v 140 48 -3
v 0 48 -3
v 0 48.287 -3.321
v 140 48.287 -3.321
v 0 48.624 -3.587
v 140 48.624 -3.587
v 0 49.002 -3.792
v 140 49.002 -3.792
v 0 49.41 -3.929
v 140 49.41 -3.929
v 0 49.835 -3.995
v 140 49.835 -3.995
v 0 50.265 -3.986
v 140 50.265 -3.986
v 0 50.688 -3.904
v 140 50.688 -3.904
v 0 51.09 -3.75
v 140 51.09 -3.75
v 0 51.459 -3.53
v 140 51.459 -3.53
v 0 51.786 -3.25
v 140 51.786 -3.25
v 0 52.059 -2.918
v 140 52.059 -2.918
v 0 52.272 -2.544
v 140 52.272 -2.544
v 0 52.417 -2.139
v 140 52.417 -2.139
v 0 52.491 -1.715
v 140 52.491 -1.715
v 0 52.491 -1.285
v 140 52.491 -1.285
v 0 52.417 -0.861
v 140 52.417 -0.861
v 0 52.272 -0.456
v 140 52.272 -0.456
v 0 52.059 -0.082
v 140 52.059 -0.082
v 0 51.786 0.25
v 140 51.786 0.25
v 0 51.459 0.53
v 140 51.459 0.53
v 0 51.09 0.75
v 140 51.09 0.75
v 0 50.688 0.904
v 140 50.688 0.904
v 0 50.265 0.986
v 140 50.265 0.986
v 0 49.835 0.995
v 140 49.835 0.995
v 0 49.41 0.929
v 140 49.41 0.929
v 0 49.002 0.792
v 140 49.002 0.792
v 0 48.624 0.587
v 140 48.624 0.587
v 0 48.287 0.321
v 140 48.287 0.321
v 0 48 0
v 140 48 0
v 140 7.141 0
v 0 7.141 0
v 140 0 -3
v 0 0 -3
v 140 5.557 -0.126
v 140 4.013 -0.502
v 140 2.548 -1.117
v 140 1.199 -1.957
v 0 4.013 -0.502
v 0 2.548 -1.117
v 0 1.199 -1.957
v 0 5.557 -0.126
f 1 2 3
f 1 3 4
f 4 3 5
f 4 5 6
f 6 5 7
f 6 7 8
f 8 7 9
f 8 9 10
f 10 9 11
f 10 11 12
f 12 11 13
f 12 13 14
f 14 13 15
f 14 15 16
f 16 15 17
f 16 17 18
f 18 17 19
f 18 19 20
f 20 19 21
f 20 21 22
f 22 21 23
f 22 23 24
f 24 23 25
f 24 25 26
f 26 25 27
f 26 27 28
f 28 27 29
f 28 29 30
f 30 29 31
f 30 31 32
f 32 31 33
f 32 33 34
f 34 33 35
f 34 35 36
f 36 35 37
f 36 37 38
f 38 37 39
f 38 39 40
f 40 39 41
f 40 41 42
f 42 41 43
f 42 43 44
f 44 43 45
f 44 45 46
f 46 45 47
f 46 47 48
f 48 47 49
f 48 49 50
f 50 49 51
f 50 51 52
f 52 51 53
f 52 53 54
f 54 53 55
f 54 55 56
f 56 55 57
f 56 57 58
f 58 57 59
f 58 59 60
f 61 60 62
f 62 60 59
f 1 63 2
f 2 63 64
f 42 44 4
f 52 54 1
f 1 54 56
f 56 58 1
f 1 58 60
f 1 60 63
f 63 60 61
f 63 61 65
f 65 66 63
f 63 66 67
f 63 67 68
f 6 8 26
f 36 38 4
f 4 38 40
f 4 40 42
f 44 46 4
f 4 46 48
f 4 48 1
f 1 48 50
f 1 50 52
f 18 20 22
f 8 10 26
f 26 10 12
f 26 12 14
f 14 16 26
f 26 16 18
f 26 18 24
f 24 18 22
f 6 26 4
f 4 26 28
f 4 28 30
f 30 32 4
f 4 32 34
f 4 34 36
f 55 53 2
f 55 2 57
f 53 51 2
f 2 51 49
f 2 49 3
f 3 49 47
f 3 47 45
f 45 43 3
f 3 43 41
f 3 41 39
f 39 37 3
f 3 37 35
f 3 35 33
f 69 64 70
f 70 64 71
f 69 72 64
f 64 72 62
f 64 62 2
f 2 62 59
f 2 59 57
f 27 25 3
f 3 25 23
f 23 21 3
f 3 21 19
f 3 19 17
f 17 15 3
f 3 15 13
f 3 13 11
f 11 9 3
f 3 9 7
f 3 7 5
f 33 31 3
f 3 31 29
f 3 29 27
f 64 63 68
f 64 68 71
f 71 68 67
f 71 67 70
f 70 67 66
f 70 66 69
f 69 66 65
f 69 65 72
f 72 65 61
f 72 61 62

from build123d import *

# Parameters (mm, degrees)
BOSS_EXTRUDE1_DEPTH = 140
FILLET1_R           = 10


with BuildPart() as part:
    # Sketch1 → Boss-Extrude1 (new body)
    with BuildSketch(Plane(origin=(0, 0, 0), x_dir=(0, 0, -1), z_dir=(1, 0, 0))):
        with BuildLine():
            ThreePointArc((4, 50), (0.381966011, 52.236067977), (0, 48))
            Line((0, 48), (0, 50))
            Line((0, 50), (3, 50))
            Line((3, 50), (3, 48))
            ThreePointArc((3, 48), (3.736067977, 48.881966011), (4, 50))
        make_face()
        with BuildLine():
            Line((0, 50), (0, 48))
            ThreePointArc((0, 48), (1.5, 47.5), (3, 48))
            Line((3, 48), (3, 50))
            Line((3, 50), (0, 50))
        make_face()
        with BuildLine():
            Line((0, 48), (0, 0))
            Line((0, 0), (3, 0))
            Line((3, 0), (3, 48))
            ThreePointArc((3, 48), (1.5, 47.5), (0, 48))
        make_face()
    extrude(amount=BOSS_EXTRUDE1_DEPTH)

    # Fillet1
    # the kernel refuses this fillet: 10 mm, written as the material it takes off along each edge
    with BuildSketch(Plane(origin=(-17.853571071, 0, 0), x_dir=(0, 1, 0), z_dir=(1, 0, 0))) as fillet1_piece_1:
        with BuildLine():
            CenterArc((7.141428429, -10), FILLET1_R, 90, 45.572995999)
            Line((0, -3), (-0.142828569, -2.86))
            ThreePointArc((-0.142828569, -2.86), (-0.2, -1.5), (-0.2, 0))
            Line((-0.2, 0), (0, 0.2))
            Line((0, 0.2), (7.141428429, 0.2))
            Line((7.141428429, 0.2), (7.141428429, 0))
        make_face()
    extrude(amount=175.707142143, mode=Mode.SUBTRACT)


solid = part.part
